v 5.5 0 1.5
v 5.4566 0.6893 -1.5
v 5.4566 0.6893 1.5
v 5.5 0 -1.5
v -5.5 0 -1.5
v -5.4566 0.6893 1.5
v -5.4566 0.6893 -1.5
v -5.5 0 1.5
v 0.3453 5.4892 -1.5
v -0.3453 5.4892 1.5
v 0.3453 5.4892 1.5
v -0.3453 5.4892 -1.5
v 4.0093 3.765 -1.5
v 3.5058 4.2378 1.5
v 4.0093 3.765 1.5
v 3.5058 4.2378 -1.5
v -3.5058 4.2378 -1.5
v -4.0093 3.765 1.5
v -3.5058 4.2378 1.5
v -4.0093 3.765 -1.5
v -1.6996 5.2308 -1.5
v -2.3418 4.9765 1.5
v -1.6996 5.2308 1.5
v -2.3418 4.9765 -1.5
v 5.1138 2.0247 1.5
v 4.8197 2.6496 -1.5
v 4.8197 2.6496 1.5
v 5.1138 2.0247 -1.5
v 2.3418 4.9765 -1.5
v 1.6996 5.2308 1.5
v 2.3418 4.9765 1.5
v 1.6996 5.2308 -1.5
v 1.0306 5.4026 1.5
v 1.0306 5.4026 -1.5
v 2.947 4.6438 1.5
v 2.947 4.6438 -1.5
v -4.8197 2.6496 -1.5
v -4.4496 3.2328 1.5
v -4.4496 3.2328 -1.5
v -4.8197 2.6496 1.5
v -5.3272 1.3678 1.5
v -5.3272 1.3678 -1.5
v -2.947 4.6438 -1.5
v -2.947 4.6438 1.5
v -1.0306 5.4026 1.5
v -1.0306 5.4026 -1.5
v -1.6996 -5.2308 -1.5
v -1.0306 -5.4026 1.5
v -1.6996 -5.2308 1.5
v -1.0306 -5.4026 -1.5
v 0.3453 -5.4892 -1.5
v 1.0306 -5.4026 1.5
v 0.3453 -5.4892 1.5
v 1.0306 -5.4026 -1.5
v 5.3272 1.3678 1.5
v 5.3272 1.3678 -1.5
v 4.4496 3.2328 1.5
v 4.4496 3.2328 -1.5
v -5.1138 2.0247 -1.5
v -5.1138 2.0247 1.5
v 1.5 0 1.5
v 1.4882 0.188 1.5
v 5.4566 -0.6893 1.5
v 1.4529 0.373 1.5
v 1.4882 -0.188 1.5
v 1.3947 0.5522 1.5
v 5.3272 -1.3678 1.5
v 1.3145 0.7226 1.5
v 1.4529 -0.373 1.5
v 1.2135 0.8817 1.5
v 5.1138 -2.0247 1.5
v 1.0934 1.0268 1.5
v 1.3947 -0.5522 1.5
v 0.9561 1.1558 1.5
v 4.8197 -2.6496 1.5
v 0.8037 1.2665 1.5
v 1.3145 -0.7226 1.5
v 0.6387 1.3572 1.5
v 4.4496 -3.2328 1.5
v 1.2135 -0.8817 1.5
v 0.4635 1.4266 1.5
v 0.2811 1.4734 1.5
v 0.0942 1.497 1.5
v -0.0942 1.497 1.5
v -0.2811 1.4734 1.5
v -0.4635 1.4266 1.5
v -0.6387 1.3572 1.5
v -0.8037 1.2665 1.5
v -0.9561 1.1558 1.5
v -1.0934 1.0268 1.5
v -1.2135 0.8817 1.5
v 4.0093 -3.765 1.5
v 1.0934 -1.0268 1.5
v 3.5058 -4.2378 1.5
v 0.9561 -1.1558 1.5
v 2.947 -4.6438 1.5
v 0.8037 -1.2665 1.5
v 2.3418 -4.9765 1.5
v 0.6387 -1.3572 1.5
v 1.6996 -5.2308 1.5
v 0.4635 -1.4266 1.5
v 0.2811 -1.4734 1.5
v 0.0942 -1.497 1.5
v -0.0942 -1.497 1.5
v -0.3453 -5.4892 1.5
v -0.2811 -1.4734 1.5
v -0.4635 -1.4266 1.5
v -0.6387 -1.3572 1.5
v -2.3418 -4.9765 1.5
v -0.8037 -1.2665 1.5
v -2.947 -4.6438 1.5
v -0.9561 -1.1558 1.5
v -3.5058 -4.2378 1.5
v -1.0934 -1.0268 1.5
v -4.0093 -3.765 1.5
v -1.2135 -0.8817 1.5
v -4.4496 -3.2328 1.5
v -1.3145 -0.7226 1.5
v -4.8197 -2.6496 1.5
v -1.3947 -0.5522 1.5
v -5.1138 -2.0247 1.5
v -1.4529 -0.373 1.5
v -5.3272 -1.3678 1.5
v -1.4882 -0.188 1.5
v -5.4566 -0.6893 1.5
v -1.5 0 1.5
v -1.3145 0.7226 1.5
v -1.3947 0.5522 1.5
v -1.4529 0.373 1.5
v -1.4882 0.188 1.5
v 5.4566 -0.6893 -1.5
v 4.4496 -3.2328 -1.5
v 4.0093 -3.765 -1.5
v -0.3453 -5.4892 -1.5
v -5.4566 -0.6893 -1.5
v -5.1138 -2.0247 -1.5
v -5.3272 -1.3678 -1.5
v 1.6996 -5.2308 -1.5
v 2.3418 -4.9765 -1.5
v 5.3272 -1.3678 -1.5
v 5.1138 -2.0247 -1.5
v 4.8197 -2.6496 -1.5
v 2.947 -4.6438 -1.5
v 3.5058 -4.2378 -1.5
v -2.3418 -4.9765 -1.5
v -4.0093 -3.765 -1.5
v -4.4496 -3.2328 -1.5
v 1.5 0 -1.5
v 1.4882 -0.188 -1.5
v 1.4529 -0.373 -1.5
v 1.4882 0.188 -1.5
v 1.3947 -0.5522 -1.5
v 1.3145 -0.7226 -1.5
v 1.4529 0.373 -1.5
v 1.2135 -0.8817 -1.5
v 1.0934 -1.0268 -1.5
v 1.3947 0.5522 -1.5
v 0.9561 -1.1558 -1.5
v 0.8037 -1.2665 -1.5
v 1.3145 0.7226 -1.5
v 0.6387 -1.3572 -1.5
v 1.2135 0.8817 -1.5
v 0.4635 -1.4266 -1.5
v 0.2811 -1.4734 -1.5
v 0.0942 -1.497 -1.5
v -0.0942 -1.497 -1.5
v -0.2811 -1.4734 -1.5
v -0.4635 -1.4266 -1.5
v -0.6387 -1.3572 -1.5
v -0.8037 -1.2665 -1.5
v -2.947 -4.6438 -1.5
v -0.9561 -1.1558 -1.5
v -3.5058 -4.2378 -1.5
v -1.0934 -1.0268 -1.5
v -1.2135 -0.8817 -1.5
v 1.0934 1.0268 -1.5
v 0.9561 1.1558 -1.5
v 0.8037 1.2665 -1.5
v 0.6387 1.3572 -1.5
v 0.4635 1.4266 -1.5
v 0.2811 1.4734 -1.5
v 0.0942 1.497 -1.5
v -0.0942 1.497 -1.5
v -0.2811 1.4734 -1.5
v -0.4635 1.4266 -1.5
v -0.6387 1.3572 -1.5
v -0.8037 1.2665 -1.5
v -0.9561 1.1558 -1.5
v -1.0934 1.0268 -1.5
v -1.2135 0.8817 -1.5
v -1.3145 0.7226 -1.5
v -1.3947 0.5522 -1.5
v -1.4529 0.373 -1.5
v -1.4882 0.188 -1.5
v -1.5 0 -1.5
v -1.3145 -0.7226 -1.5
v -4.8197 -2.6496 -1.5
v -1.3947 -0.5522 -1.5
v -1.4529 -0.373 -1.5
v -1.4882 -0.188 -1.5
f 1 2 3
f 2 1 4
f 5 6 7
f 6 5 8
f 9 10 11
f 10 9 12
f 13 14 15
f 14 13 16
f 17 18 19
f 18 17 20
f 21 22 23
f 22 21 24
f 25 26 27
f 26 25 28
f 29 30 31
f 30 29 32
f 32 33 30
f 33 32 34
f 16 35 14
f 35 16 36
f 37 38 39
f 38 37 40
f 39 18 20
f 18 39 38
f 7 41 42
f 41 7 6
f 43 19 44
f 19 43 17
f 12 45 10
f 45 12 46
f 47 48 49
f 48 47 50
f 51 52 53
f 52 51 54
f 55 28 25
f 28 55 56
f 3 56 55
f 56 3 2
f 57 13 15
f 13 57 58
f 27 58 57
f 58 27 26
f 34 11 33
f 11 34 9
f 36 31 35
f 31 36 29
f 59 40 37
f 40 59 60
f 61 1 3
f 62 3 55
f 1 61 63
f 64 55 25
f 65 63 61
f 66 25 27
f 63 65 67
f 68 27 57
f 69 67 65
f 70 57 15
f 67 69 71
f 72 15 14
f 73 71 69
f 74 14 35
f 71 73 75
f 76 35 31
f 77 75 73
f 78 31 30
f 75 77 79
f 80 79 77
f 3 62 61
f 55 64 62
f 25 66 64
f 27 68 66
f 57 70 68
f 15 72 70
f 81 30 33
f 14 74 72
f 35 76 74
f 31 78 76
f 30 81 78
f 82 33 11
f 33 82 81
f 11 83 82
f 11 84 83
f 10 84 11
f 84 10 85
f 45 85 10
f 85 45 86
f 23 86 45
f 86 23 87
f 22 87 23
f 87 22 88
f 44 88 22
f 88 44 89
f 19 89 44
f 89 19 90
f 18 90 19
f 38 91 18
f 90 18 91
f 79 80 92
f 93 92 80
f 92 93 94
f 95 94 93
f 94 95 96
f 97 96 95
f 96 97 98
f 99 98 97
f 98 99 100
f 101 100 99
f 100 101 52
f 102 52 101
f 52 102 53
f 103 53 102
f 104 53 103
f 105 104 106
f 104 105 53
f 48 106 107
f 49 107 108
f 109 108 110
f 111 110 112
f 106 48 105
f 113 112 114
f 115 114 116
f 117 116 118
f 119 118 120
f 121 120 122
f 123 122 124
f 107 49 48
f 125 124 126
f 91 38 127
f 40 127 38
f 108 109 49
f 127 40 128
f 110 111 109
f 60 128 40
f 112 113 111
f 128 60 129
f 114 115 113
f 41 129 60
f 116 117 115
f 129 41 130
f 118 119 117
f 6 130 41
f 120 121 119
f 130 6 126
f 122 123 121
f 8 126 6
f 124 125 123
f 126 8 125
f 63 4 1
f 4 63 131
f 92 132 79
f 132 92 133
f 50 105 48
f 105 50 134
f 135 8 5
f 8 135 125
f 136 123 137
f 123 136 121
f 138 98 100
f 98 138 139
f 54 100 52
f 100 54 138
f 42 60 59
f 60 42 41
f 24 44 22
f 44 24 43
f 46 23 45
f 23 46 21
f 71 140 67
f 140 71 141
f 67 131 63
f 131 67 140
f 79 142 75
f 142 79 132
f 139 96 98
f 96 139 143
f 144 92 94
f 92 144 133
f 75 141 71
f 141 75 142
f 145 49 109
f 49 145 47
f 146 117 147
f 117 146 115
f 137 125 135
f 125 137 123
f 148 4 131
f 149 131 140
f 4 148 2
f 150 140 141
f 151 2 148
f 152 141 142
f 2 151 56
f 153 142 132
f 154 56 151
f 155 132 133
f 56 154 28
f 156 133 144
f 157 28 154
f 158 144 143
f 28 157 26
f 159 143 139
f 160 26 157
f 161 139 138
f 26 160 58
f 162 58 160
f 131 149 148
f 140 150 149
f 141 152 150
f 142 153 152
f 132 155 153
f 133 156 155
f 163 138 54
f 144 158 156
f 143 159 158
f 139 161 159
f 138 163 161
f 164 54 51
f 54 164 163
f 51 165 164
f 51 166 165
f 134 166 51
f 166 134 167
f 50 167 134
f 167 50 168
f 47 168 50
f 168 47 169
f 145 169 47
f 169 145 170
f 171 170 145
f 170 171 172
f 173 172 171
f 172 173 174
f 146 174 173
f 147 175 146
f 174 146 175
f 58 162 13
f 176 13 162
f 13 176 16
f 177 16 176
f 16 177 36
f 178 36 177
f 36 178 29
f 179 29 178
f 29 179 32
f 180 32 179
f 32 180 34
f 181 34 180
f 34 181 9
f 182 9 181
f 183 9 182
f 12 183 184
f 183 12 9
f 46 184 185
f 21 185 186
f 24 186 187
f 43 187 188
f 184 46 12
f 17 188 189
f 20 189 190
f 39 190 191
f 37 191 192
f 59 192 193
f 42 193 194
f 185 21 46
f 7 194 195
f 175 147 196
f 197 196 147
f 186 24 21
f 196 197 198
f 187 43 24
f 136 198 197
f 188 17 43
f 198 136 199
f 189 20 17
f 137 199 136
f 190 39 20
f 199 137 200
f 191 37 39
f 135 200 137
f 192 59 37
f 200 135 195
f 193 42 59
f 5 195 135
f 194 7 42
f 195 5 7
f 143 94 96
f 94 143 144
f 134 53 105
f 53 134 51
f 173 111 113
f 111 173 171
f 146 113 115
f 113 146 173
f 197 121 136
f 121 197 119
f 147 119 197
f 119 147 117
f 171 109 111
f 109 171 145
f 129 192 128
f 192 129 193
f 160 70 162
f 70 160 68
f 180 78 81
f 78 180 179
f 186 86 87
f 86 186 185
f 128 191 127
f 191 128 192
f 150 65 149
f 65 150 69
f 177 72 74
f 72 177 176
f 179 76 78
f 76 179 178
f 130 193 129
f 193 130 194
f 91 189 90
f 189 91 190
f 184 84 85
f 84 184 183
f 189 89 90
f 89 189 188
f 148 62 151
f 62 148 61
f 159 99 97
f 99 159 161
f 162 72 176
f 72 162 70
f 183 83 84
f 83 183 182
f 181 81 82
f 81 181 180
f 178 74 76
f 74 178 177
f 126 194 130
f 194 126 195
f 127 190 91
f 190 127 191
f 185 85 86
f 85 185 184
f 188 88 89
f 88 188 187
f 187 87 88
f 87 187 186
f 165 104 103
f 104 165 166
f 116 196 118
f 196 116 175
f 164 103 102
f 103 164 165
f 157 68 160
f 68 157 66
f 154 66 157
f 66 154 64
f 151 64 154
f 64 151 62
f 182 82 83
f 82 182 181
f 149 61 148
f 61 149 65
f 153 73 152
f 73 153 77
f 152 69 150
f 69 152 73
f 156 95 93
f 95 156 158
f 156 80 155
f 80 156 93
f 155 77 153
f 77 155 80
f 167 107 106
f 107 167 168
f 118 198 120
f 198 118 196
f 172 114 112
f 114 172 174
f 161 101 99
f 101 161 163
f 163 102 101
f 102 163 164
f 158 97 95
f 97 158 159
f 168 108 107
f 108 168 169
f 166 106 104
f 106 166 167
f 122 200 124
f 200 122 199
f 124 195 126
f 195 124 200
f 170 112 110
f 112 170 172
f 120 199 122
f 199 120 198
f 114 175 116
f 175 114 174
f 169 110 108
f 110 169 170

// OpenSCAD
$fn = 50;


difference() {
	union() {
		translate(v = [0, 0, -1.5000000000]) {
			cylinder(h = 3, r = 5.5000000000);
		}
	}
	union() {
		translate(v = [0, 0, -100.0000000000]) {
			cylinder(h = 200, r = 1.5000000000);
		}
	}
}
